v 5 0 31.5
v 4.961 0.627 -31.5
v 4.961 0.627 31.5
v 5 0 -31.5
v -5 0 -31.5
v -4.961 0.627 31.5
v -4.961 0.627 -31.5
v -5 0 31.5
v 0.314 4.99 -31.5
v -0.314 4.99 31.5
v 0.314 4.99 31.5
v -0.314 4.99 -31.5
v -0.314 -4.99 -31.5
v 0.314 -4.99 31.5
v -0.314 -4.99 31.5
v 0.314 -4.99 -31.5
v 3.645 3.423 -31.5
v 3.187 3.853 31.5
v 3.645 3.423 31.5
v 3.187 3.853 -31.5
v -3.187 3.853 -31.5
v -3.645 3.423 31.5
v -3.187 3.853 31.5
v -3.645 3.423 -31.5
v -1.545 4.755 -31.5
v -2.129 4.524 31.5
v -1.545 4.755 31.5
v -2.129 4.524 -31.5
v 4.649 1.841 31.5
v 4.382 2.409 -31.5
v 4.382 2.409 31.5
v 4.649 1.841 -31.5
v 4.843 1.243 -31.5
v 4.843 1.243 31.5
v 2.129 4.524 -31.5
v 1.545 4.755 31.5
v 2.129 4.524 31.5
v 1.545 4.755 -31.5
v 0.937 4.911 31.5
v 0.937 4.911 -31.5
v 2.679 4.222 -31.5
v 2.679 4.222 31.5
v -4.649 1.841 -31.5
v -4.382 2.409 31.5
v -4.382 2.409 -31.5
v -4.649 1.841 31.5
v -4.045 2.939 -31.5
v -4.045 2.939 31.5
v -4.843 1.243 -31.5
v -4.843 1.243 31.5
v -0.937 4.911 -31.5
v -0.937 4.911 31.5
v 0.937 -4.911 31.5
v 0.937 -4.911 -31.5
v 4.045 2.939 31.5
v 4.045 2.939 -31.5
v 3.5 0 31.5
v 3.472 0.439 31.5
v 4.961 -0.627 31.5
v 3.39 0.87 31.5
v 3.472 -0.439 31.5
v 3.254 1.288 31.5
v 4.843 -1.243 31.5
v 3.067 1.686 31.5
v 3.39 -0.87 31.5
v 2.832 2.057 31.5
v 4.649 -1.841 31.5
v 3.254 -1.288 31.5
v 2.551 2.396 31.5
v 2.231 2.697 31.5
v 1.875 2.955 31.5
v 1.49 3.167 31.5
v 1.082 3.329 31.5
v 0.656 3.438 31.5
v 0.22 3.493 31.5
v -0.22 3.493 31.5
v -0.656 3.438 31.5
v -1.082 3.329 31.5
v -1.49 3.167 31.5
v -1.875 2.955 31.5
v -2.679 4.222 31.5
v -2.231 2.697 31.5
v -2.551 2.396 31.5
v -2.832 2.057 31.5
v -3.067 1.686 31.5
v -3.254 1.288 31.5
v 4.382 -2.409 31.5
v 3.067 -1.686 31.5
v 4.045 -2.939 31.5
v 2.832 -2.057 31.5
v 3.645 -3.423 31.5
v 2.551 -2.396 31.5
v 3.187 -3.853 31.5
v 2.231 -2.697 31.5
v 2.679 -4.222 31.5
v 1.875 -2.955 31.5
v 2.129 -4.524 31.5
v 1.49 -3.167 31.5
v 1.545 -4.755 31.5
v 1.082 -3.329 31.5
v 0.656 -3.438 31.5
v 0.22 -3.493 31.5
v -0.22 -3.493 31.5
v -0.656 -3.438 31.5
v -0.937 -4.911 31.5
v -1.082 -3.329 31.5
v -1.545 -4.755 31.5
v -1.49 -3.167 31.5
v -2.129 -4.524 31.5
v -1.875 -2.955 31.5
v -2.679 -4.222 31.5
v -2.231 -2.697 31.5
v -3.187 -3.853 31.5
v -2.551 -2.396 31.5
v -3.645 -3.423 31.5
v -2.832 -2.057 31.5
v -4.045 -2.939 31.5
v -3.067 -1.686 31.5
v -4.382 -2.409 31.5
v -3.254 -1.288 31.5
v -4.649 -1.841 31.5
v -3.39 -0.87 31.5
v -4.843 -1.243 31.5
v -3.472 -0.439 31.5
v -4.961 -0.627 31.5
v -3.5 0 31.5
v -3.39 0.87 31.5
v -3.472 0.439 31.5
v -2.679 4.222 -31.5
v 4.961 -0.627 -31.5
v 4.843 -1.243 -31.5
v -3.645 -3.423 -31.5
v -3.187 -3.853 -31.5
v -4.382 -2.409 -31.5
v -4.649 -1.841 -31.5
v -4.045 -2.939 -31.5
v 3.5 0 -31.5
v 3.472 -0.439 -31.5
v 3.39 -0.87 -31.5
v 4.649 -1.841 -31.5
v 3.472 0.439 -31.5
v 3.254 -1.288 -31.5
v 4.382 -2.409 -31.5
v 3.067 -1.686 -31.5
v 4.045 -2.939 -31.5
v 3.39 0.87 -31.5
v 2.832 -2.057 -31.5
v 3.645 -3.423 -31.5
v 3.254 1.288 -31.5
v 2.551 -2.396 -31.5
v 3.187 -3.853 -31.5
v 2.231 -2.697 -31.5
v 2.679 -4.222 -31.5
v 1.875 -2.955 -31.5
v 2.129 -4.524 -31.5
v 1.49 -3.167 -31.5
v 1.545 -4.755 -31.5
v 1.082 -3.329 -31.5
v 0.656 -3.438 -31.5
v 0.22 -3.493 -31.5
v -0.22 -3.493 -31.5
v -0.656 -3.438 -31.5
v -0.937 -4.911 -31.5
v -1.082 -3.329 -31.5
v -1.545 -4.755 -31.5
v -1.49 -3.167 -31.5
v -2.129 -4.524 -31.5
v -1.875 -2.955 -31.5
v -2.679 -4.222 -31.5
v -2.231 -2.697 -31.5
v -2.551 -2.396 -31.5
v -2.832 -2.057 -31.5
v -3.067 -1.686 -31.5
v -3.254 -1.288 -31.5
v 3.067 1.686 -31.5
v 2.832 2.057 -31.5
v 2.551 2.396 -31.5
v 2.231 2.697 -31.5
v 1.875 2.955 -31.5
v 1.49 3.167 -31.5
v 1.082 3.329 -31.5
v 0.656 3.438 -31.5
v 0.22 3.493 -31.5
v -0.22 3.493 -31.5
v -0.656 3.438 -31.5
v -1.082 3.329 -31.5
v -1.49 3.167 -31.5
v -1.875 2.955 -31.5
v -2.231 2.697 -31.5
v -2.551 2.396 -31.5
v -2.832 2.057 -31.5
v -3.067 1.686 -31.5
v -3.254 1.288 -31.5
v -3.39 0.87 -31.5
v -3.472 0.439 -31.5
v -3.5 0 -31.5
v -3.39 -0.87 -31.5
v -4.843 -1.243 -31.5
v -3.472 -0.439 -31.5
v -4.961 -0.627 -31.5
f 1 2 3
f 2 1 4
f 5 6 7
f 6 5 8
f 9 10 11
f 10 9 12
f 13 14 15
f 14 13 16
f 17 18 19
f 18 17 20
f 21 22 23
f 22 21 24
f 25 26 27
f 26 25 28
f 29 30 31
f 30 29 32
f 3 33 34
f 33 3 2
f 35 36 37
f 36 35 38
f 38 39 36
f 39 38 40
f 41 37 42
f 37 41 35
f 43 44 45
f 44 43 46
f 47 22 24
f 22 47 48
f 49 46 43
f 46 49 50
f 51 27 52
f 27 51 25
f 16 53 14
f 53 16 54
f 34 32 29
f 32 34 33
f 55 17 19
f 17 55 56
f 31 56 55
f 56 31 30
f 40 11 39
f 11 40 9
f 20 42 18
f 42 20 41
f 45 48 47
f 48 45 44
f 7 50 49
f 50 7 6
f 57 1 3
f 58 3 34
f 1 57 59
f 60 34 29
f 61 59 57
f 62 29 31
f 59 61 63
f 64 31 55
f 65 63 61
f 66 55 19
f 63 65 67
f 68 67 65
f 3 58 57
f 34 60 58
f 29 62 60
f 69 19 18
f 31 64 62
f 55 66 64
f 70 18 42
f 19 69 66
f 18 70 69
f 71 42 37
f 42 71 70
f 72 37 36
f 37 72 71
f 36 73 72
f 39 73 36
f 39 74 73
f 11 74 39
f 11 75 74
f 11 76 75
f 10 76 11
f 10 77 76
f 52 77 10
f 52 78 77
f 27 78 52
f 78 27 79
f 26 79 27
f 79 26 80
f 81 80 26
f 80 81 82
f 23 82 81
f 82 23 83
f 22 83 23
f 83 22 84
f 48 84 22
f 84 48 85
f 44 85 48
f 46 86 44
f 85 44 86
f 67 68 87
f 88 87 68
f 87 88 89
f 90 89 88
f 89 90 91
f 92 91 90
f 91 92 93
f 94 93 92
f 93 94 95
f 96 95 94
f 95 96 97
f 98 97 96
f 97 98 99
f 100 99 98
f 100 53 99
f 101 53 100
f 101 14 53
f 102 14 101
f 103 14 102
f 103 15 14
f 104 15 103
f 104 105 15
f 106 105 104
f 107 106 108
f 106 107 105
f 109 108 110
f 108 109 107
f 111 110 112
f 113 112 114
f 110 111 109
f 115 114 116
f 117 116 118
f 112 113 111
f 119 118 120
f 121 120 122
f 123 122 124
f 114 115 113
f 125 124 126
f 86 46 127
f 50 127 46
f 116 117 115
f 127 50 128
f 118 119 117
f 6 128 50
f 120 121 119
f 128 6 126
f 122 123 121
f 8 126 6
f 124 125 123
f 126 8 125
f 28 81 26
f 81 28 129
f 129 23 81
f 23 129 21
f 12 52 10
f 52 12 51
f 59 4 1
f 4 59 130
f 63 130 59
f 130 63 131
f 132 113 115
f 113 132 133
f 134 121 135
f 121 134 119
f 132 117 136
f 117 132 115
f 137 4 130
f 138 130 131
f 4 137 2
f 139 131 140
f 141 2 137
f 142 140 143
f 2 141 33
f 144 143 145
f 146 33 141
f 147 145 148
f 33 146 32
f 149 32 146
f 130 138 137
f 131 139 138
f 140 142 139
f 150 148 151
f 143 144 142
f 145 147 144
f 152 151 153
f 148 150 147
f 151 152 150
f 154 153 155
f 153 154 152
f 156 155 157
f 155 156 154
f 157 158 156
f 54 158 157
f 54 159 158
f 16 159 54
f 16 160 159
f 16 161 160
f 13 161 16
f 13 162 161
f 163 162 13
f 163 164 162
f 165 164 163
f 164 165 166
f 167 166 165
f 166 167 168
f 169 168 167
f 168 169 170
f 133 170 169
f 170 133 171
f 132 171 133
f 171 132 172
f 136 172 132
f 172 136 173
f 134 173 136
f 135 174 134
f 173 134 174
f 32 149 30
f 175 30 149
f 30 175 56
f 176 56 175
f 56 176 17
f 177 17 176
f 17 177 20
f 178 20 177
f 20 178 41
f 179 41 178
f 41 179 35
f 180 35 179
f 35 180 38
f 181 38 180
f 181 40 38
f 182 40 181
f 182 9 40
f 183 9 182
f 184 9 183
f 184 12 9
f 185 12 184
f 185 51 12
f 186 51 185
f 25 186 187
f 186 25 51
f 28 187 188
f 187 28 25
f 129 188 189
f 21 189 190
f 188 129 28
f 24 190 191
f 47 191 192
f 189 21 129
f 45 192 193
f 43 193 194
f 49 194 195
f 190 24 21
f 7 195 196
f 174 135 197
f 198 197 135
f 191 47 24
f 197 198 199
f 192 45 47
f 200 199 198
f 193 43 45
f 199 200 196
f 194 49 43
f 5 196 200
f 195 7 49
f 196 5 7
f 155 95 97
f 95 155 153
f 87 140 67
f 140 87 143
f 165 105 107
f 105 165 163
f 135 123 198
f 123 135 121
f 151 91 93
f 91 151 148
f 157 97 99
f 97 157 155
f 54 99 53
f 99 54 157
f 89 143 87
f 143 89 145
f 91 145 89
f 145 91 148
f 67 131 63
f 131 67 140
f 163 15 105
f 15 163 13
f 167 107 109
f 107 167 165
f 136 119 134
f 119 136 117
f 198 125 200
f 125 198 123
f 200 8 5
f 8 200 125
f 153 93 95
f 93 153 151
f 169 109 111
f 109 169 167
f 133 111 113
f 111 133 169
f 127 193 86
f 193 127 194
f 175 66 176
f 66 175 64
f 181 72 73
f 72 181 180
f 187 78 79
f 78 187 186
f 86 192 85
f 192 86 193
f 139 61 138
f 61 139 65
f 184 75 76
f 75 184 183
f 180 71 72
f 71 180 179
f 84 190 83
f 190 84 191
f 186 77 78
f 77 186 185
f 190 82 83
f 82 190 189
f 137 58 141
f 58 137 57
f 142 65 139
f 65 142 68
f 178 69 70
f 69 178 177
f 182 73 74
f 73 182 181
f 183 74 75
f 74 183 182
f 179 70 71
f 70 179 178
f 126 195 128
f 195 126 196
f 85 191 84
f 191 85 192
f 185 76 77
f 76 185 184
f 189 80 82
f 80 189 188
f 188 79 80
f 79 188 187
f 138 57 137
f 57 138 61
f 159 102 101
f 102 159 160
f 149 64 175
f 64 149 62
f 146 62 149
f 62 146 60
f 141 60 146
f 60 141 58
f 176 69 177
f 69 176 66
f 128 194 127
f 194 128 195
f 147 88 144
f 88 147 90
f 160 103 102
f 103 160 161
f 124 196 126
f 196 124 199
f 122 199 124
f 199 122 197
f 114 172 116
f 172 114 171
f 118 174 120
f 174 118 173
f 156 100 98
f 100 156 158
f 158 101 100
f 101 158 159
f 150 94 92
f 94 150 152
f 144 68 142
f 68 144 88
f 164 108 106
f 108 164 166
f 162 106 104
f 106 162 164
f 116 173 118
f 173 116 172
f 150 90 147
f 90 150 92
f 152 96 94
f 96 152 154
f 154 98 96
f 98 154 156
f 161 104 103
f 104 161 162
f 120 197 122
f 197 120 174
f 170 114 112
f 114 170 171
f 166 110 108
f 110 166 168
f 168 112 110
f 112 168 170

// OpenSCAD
$fn = 50;


difference() {
	union() {
		translate(v = [0, 0, -31.5000000000]) {
			cylinder(h = 63, r = 5.0000000000);
		}
	}
	union() {
		translate(v = [0, 0, -100.0000000000]) {
			cylinder(h = 200, r = 3.5000000000);
		}
	}
}
